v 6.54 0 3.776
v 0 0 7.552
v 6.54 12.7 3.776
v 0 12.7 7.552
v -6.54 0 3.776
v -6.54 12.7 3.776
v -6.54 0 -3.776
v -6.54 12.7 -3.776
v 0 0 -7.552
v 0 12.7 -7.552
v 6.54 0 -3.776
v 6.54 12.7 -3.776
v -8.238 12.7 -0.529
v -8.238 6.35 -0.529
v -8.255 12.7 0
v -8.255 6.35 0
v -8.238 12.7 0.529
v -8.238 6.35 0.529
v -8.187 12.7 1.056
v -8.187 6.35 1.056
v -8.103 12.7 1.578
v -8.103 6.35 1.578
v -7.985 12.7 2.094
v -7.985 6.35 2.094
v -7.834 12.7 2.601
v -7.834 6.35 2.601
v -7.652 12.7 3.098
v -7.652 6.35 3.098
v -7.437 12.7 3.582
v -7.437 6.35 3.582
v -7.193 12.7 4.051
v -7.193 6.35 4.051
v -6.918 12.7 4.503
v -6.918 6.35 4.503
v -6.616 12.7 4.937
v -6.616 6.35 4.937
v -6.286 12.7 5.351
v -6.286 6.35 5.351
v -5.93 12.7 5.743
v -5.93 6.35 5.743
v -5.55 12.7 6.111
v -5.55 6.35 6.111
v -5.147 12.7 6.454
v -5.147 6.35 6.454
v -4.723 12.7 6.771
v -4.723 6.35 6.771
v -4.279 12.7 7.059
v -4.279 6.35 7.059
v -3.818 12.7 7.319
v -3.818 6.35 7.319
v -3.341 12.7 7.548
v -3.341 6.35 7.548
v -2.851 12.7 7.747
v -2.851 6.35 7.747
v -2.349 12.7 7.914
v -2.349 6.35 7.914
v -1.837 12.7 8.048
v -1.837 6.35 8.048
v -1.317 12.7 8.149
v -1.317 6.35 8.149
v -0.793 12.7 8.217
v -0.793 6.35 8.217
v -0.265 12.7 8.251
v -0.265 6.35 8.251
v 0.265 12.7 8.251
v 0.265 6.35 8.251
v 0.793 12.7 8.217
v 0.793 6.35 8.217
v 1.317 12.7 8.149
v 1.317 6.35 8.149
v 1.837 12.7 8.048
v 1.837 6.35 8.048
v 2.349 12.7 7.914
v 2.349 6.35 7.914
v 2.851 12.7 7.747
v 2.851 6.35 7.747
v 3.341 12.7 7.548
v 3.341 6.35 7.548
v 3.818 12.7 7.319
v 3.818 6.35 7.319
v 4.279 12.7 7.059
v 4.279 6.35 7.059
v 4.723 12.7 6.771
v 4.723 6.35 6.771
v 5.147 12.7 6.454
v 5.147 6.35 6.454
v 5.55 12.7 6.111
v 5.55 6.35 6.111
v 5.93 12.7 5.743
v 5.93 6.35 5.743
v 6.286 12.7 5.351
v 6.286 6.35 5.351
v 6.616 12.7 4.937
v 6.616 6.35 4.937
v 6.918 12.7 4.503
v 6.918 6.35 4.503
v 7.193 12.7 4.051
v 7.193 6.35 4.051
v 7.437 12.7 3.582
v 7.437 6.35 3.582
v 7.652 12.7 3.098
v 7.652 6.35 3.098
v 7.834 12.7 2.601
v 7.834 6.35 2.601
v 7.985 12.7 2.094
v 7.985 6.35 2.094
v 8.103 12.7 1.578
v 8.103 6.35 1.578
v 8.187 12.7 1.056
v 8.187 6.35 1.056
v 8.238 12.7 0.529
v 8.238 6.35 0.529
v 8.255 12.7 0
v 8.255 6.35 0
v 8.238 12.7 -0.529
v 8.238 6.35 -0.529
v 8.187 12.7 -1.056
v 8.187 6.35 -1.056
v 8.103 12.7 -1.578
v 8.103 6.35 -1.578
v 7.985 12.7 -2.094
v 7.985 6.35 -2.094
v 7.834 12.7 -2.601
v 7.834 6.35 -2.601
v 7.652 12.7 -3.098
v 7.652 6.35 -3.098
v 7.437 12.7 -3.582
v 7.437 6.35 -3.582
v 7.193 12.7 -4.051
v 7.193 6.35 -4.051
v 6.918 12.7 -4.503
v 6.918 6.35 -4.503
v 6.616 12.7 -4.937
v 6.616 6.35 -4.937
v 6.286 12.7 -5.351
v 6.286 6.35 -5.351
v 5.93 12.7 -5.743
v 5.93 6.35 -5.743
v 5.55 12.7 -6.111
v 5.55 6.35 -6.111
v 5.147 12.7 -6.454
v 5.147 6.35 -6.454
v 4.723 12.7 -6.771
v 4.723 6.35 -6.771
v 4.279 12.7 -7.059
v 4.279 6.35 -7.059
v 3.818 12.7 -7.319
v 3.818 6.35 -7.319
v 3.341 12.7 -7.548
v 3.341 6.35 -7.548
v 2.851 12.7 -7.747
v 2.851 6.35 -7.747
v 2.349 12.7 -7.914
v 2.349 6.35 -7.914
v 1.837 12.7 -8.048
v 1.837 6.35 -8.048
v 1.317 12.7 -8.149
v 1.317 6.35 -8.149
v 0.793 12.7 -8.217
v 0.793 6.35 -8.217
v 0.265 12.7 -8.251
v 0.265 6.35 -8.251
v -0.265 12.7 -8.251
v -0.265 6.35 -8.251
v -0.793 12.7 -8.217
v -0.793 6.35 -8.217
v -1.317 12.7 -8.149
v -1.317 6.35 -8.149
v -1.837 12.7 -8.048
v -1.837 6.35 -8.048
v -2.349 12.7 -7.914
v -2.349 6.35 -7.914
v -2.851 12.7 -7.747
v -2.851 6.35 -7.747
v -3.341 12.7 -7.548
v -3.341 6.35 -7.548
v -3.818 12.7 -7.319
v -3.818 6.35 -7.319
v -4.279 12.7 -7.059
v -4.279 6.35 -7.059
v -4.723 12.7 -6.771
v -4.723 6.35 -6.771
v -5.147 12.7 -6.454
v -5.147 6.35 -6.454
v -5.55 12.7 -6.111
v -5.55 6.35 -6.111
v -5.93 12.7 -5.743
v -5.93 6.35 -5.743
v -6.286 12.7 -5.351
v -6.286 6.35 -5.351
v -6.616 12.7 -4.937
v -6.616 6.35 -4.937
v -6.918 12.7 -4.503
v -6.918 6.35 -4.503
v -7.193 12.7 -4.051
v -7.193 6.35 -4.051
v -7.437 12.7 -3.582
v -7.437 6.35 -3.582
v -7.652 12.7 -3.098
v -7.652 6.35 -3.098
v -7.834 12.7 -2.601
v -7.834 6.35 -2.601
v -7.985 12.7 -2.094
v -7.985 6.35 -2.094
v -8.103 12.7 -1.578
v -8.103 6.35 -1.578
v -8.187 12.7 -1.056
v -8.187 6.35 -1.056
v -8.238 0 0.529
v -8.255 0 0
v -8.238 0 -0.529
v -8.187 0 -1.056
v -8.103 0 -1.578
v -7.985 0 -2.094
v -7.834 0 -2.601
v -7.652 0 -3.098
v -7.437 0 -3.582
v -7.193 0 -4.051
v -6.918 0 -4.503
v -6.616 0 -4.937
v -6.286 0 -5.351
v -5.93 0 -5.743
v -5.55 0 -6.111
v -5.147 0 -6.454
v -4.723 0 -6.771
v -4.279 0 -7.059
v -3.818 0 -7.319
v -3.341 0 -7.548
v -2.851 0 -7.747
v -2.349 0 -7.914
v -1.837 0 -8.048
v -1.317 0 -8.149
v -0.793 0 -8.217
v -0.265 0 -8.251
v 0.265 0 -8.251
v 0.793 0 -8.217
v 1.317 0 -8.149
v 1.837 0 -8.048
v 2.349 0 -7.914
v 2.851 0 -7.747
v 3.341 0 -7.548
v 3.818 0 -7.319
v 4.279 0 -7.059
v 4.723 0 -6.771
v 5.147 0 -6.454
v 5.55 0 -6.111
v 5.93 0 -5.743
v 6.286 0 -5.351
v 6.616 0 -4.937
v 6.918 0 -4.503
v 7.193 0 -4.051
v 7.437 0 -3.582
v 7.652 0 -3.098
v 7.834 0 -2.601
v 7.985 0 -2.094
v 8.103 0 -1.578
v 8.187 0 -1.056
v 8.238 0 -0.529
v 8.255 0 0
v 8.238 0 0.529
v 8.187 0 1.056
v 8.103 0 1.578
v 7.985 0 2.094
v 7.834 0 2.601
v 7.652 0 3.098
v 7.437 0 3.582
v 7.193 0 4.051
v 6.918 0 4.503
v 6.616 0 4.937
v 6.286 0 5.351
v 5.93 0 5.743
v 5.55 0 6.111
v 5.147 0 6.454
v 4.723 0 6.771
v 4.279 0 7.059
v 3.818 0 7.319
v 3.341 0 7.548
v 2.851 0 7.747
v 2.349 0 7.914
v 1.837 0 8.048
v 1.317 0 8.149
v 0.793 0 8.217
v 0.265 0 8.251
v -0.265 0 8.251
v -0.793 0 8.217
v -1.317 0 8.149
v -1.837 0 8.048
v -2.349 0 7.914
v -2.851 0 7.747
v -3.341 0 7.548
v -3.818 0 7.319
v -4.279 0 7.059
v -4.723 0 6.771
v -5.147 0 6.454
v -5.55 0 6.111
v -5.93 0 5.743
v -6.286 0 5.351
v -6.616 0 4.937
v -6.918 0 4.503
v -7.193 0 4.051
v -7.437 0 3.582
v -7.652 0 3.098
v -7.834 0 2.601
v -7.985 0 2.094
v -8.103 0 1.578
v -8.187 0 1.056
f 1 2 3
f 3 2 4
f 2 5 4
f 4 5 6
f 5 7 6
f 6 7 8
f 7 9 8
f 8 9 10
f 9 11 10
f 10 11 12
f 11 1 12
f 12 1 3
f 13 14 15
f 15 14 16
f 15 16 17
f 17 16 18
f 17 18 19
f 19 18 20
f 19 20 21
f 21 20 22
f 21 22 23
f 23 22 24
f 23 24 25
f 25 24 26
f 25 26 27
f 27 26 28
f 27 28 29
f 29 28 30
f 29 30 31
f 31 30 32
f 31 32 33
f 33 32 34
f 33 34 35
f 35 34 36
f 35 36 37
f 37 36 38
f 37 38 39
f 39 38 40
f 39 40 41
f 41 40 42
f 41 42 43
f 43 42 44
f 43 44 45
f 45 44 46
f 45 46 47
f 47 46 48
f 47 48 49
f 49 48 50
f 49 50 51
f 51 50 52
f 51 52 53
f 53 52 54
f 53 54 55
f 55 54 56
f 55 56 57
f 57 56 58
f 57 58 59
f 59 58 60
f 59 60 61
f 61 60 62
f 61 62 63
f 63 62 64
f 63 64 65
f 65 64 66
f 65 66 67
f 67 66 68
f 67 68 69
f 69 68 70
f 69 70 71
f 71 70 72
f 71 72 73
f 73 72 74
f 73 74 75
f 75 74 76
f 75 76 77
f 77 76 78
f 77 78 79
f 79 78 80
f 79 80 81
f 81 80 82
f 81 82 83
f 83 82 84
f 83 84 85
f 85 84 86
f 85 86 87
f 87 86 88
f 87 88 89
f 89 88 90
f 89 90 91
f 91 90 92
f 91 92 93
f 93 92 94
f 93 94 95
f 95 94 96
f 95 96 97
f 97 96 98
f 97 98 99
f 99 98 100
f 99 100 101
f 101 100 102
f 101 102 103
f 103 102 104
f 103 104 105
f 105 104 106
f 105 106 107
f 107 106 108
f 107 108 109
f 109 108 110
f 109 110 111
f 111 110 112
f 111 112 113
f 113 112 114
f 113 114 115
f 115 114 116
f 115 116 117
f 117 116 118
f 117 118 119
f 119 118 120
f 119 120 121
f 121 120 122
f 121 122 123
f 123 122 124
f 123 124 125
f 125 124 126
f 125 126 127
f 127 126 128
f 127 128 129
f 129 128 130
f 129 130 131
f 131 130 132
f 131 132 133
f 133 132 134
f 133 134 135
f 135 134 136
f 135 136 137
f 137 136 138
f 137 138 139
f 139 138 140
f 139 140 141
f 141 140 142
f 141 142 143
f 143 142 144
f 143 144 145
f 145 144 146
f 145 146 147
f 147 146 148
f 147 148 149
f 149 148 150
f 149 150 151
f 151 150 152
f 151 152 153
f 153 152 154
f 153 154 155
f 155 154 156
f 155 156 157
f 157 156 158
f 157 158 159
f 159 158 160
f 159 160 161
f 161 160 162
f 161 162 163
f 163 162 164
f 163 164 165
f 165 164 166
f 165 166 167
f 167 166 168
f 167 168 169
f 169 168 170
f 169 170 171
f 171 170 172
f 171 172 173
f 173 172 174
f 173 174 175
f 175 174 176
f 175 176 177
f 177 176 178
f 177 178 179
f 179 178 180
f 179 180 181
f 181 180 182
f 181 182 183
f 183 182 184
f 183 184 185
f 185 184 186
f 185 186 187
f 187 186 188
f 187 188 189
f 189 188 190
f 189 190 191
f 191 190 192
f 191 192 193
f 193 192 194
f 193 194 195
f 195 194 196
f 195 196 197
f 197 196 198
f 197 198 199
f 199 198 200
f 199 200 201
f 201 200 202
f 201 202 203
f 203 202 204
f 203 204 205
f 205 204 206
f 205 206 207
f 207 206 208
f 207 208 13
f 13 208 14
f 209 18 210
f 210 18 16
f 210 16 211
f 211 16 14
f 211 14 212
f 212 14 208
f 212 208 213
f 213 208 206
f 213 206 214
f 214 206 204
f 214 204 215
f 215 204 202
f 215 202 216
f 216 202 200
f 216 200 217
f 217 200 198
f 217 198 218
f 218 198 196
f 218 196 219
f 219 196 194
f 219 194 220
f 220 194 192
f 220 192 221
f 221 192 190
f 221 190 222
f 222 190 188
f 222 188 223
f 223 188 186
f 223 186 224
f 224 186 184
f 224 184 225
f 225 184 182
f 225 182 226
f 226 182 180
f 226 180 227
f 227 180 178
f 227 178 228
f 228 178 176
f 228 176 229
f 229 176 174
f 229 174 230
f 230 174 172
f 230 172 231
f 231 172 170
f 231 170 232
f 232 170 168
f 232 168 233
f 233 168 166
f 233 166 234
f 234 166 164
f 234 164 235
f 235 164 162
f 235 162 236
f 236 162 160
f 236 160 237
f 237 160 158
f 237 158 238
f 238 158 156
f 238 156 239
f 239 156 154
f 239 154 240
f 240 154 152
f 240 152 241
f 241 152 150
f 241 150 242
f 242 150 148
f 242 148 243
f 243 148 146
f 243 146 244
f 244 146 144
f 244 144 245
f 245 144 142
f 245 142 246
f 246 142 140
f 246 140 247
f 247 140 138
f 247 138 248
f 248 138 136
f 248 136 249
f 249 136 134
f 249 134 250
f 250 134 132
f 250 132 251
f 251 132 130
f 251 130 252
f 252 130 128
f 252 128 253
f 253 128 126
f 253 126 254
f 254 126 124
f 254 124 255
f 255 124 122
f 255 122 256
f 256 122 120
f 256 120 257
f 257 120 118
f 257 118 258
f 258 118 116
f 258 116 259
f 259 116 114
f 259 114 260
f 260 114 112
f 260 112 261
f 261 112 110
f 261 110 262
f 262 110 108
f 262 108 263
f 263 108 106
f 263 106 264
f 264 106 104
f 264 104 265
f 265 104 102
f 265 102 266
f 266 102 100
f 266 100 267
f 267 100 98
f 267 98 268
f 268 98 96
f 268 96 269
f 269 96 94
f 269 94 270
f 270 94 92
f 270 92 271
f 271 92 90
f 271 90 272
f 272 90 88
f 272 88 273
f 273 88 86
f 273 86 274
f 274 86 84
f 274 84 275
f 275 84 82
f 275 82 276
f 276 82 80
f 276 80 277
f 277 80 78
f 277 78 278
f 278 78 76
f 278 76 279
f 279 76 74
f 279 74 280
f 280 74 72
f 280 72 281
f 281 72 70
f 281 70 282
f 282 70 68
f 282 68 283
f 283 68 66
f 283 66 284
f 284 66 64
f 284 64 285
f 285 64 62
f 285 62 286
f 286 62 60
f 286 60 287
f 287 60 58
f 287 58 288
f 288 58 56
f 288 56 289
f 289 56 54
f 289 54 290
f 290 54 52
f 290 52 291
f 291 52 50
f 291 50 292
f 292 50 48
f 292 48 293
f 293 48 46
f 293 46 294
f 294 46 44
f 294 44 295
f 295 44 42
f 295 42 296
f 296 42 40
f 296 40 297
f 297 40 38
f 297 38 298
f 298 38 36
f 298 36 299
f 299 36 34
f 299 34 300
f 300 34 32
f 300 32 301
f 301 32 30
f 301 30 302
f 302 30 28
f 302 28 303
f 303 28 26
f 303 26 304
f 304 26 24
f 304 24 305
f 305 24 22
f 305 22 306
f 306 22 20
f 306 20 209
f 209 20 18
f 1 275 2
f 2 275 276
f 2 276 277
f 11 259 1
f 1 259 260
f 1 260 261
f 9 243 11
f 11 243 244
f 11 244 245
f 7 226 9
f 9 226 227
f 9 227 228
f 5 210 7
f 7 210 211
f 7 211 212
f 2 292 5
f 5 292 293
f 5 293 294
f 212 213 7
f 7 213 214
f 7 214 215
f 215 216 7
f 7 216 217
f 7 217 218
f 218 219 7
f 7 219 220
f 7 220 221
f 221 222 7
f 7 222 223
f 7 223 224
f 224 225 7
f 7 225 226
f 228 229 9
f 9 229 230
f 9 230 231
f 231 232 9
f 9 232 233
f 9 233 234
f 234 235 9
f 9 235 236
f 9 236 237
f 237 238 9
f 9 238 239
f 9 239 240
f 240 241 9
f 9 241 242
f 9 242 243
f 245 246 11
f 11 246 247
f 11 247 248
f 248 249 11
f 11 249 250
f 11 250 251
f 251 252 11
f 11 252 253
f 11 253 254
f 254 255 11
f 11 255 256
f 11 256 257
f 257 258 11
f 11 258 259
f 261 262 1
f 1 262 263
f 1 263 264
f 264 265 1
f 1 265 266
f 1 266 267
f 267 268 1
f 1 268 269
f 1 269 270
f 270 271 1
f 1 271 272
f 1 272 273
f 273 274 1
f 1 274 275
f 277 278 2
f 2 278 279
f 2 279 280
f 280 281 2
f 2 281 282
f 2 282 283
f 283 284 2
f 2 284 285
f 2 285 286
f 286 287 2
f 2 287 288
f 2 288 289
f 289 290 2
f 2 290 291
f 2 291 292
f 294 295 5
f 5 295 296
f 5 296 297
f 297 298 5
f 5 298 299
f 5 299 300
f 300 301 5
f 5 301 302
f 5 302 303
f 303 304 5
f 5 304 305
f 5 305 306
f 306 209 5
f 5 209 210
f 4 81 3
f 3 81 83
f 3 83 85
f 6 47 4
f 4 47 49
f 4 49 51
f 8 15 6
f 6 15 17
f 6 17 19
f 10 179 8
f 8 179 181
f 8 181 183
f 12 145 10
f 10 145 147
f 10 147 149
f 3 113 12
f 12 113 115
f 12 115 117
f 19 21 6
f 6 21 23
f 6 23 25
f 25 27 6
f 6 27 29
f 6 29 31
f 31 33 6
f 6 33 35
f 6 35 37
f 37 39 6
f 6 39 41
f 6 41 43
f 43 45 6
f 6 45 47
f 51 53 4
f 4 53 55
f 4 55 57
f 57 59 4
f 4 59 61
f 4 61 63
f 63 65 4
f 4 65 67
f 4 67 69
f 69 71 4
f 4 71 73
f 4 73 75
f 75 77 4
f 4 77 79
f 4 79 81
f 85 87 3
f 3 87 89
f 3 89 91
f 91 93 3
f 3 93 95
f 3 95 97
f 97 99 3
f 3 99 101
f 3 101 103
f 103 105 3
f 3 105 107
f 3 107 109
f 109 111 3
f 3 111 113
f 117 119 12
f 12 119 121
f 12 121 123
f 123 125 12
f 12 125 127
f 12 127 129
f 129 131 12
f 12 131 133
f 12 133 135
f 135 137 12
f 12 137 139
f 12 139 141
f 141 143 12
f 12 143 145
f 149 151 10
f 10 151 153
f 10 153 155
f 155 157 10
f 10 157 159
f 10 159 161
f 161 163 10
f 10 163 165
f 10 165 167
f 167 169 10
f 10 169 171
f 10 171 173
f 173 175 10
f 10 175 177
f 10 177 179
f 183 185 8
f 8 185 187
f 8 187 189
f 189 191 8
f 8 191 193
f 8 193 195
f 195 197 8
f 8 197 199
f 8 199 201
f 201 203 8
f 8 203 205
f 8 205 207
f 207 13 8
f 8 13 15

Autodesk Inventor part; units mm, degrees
ref_plane "YZ Plane" through (0, 0, 0) normal (1, 0, 0) x (0, 1, 0)
ref_plane "XZ Plane" through (0, 0, 0) normal (0, 1, 0) x (-1, 0, 0)
ref_plane "XY Plane" through (0, 0, 0) normal (0, 0, 1) x (1, 0, 0)
sketch "Sketch1" plane through (0, 0, 0) normal (0, 1, 0) x (-1, 0, 0)
  circle A0 centre (0, 0) radius 8.255
  line L0 (-6.5405, -3.7762) -> (-6.5405, 3.7762)
  line L1 (-6.5405, 3.7762) -> (0, 7.5523)
  line L2 (0, 7.5523) -> (6.5405, 3.7762)
  line L3 (6.5405, 3.7762) -> (6.5405, -3.7762)
  line L4 (6.5405, -3.7762) -> (0, -7.5523)
  line L5 (0, -7.5523) -> (-6.5405, -3.7762)
  dimension "d0" = 16.51
  dimension "d1" = 13.081
extrude "Extrusion1" add sketch "Sketch1" along normal blind 12.7
properties part number "S1"
